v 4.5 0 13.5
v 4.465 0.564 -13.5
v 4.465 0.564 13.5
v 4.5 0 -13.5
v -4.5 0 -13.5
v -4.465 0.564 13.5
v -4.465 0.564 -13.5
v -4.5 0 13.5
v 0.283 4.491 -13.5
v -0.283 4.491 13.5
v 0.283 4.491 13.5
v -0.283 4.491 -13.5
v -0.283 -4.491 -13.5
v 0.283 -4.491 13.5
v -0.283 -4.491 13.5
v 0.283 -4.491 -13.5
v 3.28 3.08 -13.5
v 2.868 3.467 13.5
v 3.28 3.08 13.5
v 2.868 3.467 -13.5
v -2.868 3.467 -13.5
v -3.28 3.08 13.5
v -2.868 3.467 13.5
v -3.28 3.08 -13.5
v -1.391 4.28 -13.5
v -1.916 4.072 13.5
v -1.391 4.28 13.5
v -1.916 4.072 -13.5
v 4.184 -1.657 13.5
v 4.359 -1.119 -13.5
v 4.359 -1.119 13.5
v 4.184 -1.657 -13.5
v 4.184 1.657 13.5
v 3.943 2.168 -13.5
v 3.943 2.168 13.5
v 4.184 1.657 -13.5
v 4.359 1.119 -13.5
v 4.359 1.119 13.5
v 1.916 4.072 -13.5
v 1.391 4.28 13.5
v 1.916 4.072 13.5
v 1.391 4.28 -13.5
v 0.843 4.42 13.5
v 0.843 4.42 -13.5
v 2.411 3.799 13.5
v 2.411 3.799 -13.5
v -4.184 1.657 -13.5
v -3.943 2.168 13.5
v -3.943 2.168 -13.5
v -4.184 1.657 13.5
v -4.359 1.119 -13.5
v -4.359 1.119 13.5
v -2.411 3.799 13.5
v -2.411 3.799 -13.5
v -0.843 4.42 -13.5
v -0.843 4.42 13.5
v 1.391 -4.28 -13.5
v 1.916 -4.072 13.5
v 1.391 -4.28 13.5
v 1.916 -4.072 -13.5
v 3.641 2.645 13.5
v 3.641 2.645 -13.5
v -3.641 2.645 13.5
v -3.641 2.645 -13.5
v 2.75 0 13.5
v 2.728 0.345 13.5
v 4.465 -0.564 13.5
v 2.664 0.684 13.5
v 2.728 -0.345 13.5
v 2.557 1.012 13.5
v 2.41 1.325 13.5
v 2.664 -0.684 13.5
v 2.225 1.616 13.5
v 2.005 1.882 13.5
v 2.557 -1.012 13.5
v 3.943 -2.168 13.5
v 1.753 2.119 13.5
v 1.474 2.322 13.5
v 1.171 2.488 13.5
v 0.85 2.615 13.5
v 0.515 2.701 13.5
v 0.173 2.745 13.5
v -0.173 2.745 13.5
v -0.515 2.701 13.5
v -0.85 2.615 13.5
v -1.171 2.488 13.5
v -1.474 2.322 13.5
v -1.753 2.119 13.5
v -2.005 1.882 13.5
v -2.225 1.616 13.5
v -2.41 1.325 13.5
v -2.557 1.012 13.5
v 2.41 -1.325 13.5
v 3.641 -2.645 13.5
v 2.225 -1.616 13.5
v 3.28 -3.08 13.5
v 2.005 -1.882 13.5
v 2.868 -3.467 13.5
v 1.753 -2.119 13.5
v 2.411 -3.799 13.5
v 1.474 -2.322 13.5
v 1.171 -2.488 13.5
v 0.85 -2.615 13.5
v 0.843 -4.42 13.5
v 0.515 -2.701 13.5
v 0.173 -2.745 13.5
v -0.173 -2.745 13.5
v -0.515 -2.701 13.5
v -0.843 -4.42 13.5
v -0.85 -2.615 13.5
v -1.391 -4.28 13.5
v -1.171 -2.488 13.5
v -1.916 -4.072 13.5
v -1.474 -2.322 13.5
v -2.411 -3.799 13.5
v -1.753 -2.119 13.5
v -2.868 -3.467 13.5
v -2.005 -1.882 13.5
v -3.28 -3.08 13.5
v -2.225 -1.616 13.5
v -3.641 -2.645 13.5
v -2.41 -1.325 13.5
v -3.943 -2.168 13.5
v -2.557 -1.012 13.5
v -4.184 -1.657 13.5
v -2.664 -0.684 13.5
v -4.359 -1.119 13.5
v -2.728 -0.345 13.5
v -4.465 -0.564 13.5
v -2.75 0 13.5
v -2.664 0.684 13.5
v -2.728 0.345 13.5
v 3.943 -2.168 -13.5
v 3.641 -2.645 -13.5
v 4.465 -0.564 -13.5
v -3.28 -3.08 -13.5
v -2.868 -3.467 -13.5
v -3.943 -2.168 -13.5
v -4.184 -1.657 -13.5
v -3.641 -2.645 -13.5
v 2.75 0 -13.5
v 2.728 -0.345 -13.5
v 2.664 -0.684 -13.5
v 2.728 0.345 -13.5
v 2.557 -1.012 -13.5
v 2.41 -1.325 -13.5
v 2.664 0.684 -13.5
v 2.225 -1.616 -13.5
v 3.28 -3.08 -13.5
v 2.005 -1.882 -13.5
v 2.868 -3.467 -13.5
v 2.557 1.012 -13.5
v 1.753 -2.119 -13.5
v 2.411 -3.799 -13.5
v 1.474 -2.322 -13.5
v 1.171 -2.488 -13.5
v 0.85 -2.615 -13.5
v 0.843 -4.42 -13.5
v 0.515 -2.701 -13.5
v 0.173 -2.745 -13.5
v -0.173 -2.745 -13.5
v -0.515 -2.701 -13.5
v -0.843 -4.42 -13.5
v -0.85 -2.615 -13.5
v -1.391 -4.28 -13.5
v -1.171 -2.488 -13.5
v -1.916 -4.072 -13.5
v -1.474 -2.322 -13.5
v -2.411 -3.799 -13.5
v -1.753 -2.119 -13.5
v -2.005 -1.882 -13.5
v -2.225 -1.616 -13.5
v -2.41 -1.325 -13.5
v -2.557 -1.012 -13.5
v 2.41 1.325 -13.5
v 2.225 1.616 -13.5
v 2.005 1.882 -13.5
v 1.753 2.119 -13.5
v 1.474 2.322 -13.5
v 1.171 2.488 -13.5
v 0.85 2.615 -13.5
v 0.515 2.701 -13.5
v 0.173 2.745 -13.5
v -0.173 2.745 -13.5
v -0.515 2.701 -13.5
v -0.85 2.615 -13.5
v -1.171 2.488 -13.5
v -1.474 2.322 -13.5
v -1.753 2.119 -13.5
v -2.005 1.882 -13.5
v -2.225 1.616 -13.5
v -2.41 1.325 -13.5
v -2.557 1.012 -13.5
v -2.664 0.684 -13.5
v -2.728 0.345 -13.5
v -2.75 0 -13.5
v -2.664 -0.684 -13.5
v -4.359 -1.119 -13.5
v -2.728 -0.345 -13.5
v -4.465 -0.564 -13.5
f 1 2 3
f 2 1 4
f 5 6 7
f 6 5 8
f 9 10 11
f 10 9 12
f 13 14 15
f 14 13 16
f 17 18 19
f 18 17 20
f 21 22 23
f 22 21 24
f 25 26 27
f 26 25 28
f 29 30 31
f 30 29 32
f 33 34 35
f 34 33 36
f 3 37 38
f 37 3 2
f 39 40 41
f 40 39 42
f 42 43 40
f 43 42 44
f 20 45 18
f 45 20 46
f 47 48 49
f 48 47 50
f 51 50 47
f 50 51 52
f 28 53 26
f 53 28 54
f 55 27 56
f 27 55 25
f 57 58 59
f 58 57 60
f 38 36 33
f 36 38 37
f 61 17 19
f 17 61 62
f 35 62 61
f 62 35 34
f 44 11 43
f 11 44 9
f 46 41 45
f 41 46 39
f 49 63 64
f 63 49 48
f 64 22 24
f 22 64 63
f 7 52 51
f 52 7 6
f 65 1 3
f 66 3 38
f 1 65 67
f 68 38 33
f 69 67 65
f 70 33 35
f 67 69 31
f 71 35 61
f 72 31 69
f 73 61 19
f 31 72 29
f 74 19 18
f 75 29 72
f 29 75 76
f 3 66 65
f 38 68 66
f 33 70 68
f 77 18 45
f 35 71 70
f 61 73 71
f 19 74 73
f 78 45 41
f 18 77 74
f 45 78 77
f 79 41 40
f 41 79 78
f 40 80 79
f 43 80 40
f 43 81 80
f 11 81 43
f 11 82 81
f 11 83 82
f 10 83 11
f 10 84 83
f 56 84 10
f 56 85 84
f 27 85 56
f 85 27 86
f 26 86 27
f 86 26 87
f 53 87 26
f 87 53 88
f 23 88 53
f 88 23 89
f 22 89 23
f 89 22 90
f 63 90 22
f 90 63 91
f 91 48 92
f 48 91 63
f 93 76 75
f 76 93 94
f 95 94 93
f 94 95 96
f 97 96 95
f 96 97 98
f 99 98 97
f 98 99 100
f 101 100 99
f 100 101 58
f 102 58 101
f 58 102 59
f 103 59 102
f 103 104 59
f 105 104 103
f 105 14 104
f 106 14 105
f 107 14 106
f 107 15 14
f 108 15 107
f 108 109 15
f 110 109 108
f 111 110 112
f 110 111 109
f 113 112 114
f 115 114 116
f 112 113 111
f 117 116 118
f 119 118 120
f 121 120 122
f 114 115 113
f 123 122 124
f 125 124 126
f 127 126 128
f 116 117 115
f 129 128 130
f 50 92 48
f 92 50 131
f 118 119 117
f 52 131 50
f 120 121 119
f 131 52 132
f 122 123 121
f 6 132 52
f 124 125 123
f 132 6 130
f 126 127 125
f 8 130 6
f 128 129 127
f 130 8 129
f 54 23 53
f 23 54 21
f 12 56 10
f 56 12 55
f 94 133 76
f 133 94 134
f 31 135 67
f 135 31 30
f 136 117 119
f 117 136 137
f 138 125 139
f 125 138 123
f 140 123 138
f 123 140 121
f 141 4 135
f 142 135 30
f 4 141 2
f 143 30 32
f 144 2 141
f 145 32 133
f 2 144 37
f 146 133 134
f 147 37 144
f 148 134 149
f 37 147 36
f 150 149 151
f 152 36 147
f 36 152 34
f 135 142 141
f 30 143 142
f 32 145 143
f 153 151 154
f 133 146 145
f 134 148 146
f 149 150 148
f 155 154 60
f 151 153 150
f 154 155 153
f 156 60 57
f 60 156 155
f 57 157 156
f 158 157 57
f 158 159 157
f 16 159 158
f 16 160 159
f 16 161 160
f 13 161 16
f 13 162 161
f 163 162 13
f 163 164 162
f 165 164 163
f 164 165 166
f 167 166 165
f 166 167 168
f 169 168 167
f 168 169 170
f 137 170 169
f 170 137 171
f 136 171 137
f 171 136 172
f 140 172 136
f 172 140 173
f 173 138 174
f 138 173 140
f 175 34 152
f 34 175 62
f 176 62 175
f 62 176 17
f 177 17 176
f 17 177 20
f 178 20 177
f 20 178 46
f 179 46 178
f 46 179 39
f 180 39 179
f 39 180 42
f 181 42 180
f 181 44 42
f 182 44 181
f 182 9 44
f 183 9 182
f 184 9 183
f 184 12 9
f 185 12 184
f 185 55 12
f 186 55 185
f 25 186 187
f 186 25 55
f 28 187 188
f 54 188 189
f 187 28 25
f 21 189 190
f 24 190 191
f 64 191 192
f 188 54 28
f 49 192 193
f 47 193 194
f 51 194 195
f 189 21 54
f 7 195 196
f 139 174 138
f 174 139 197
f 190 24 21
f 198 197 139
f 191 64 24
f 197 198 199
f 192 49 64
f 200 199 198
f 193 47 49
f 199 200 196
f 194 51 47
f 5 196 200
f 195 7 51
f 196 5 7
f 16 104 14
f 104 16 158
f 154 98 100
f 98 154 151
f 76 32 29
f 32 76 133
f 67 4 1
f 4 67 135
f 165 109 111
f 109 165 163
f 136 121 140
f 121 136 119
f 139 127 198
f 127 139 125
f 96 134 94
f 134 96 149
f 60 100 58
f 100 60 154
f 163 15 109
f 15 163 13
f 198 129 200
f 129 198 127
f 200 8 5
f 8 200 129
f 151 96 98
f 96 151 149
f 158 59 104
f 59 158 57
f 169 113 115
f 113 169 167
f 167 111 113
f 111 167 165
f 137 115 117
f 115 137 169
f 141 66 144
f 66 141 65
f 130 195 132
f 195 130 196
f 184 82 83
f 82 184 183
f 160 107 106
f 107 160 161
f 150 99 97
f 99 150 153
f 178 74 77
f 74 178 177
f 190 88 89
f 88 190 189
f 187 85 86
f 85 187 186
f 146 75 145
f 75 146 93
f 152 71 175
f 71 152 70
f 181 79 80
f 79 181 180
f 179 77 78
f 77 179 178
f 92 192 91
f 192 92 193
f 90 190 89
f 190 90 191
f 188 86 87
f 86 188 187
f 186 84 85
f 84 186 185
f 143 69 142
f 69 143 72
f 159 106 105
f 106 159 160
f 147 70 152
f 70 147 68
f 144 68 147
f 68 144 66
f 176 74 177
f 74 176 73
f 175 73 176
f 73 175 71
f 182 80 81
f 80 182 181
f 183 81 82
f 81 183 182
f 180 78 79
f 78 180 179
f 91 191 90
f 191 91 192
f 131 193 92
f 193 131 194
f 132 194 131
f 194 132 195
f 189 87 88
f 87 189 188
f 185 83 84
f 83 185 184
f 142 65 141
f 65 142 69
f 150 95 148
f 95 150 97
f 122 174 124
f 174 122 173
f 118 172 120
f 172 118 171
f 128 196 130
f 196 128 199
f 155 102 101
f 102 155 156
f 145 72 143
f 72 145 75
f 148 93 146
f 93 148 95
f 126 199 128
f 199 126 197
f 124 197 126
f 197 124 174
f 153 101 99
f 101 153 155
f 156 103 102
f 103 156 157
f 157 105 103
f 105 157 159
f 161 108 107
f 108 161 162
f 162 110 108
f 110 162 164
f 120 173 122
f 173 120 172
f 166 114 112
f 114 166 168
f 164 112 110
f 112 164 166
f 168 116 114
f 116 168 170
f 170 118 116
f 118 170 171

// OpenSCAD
$fn = 50;


difference() {
	union() {
		translate(v = [0, 0, -13.5000000000]) {
			cylinder(h = 27, r = 4.5000000000);
		}
	}
	union() {
		translate(v = [0, 0, -100.0000000000]) {
			cylinder(h = 200, r = 2.7500000000);
		}
	}
}
